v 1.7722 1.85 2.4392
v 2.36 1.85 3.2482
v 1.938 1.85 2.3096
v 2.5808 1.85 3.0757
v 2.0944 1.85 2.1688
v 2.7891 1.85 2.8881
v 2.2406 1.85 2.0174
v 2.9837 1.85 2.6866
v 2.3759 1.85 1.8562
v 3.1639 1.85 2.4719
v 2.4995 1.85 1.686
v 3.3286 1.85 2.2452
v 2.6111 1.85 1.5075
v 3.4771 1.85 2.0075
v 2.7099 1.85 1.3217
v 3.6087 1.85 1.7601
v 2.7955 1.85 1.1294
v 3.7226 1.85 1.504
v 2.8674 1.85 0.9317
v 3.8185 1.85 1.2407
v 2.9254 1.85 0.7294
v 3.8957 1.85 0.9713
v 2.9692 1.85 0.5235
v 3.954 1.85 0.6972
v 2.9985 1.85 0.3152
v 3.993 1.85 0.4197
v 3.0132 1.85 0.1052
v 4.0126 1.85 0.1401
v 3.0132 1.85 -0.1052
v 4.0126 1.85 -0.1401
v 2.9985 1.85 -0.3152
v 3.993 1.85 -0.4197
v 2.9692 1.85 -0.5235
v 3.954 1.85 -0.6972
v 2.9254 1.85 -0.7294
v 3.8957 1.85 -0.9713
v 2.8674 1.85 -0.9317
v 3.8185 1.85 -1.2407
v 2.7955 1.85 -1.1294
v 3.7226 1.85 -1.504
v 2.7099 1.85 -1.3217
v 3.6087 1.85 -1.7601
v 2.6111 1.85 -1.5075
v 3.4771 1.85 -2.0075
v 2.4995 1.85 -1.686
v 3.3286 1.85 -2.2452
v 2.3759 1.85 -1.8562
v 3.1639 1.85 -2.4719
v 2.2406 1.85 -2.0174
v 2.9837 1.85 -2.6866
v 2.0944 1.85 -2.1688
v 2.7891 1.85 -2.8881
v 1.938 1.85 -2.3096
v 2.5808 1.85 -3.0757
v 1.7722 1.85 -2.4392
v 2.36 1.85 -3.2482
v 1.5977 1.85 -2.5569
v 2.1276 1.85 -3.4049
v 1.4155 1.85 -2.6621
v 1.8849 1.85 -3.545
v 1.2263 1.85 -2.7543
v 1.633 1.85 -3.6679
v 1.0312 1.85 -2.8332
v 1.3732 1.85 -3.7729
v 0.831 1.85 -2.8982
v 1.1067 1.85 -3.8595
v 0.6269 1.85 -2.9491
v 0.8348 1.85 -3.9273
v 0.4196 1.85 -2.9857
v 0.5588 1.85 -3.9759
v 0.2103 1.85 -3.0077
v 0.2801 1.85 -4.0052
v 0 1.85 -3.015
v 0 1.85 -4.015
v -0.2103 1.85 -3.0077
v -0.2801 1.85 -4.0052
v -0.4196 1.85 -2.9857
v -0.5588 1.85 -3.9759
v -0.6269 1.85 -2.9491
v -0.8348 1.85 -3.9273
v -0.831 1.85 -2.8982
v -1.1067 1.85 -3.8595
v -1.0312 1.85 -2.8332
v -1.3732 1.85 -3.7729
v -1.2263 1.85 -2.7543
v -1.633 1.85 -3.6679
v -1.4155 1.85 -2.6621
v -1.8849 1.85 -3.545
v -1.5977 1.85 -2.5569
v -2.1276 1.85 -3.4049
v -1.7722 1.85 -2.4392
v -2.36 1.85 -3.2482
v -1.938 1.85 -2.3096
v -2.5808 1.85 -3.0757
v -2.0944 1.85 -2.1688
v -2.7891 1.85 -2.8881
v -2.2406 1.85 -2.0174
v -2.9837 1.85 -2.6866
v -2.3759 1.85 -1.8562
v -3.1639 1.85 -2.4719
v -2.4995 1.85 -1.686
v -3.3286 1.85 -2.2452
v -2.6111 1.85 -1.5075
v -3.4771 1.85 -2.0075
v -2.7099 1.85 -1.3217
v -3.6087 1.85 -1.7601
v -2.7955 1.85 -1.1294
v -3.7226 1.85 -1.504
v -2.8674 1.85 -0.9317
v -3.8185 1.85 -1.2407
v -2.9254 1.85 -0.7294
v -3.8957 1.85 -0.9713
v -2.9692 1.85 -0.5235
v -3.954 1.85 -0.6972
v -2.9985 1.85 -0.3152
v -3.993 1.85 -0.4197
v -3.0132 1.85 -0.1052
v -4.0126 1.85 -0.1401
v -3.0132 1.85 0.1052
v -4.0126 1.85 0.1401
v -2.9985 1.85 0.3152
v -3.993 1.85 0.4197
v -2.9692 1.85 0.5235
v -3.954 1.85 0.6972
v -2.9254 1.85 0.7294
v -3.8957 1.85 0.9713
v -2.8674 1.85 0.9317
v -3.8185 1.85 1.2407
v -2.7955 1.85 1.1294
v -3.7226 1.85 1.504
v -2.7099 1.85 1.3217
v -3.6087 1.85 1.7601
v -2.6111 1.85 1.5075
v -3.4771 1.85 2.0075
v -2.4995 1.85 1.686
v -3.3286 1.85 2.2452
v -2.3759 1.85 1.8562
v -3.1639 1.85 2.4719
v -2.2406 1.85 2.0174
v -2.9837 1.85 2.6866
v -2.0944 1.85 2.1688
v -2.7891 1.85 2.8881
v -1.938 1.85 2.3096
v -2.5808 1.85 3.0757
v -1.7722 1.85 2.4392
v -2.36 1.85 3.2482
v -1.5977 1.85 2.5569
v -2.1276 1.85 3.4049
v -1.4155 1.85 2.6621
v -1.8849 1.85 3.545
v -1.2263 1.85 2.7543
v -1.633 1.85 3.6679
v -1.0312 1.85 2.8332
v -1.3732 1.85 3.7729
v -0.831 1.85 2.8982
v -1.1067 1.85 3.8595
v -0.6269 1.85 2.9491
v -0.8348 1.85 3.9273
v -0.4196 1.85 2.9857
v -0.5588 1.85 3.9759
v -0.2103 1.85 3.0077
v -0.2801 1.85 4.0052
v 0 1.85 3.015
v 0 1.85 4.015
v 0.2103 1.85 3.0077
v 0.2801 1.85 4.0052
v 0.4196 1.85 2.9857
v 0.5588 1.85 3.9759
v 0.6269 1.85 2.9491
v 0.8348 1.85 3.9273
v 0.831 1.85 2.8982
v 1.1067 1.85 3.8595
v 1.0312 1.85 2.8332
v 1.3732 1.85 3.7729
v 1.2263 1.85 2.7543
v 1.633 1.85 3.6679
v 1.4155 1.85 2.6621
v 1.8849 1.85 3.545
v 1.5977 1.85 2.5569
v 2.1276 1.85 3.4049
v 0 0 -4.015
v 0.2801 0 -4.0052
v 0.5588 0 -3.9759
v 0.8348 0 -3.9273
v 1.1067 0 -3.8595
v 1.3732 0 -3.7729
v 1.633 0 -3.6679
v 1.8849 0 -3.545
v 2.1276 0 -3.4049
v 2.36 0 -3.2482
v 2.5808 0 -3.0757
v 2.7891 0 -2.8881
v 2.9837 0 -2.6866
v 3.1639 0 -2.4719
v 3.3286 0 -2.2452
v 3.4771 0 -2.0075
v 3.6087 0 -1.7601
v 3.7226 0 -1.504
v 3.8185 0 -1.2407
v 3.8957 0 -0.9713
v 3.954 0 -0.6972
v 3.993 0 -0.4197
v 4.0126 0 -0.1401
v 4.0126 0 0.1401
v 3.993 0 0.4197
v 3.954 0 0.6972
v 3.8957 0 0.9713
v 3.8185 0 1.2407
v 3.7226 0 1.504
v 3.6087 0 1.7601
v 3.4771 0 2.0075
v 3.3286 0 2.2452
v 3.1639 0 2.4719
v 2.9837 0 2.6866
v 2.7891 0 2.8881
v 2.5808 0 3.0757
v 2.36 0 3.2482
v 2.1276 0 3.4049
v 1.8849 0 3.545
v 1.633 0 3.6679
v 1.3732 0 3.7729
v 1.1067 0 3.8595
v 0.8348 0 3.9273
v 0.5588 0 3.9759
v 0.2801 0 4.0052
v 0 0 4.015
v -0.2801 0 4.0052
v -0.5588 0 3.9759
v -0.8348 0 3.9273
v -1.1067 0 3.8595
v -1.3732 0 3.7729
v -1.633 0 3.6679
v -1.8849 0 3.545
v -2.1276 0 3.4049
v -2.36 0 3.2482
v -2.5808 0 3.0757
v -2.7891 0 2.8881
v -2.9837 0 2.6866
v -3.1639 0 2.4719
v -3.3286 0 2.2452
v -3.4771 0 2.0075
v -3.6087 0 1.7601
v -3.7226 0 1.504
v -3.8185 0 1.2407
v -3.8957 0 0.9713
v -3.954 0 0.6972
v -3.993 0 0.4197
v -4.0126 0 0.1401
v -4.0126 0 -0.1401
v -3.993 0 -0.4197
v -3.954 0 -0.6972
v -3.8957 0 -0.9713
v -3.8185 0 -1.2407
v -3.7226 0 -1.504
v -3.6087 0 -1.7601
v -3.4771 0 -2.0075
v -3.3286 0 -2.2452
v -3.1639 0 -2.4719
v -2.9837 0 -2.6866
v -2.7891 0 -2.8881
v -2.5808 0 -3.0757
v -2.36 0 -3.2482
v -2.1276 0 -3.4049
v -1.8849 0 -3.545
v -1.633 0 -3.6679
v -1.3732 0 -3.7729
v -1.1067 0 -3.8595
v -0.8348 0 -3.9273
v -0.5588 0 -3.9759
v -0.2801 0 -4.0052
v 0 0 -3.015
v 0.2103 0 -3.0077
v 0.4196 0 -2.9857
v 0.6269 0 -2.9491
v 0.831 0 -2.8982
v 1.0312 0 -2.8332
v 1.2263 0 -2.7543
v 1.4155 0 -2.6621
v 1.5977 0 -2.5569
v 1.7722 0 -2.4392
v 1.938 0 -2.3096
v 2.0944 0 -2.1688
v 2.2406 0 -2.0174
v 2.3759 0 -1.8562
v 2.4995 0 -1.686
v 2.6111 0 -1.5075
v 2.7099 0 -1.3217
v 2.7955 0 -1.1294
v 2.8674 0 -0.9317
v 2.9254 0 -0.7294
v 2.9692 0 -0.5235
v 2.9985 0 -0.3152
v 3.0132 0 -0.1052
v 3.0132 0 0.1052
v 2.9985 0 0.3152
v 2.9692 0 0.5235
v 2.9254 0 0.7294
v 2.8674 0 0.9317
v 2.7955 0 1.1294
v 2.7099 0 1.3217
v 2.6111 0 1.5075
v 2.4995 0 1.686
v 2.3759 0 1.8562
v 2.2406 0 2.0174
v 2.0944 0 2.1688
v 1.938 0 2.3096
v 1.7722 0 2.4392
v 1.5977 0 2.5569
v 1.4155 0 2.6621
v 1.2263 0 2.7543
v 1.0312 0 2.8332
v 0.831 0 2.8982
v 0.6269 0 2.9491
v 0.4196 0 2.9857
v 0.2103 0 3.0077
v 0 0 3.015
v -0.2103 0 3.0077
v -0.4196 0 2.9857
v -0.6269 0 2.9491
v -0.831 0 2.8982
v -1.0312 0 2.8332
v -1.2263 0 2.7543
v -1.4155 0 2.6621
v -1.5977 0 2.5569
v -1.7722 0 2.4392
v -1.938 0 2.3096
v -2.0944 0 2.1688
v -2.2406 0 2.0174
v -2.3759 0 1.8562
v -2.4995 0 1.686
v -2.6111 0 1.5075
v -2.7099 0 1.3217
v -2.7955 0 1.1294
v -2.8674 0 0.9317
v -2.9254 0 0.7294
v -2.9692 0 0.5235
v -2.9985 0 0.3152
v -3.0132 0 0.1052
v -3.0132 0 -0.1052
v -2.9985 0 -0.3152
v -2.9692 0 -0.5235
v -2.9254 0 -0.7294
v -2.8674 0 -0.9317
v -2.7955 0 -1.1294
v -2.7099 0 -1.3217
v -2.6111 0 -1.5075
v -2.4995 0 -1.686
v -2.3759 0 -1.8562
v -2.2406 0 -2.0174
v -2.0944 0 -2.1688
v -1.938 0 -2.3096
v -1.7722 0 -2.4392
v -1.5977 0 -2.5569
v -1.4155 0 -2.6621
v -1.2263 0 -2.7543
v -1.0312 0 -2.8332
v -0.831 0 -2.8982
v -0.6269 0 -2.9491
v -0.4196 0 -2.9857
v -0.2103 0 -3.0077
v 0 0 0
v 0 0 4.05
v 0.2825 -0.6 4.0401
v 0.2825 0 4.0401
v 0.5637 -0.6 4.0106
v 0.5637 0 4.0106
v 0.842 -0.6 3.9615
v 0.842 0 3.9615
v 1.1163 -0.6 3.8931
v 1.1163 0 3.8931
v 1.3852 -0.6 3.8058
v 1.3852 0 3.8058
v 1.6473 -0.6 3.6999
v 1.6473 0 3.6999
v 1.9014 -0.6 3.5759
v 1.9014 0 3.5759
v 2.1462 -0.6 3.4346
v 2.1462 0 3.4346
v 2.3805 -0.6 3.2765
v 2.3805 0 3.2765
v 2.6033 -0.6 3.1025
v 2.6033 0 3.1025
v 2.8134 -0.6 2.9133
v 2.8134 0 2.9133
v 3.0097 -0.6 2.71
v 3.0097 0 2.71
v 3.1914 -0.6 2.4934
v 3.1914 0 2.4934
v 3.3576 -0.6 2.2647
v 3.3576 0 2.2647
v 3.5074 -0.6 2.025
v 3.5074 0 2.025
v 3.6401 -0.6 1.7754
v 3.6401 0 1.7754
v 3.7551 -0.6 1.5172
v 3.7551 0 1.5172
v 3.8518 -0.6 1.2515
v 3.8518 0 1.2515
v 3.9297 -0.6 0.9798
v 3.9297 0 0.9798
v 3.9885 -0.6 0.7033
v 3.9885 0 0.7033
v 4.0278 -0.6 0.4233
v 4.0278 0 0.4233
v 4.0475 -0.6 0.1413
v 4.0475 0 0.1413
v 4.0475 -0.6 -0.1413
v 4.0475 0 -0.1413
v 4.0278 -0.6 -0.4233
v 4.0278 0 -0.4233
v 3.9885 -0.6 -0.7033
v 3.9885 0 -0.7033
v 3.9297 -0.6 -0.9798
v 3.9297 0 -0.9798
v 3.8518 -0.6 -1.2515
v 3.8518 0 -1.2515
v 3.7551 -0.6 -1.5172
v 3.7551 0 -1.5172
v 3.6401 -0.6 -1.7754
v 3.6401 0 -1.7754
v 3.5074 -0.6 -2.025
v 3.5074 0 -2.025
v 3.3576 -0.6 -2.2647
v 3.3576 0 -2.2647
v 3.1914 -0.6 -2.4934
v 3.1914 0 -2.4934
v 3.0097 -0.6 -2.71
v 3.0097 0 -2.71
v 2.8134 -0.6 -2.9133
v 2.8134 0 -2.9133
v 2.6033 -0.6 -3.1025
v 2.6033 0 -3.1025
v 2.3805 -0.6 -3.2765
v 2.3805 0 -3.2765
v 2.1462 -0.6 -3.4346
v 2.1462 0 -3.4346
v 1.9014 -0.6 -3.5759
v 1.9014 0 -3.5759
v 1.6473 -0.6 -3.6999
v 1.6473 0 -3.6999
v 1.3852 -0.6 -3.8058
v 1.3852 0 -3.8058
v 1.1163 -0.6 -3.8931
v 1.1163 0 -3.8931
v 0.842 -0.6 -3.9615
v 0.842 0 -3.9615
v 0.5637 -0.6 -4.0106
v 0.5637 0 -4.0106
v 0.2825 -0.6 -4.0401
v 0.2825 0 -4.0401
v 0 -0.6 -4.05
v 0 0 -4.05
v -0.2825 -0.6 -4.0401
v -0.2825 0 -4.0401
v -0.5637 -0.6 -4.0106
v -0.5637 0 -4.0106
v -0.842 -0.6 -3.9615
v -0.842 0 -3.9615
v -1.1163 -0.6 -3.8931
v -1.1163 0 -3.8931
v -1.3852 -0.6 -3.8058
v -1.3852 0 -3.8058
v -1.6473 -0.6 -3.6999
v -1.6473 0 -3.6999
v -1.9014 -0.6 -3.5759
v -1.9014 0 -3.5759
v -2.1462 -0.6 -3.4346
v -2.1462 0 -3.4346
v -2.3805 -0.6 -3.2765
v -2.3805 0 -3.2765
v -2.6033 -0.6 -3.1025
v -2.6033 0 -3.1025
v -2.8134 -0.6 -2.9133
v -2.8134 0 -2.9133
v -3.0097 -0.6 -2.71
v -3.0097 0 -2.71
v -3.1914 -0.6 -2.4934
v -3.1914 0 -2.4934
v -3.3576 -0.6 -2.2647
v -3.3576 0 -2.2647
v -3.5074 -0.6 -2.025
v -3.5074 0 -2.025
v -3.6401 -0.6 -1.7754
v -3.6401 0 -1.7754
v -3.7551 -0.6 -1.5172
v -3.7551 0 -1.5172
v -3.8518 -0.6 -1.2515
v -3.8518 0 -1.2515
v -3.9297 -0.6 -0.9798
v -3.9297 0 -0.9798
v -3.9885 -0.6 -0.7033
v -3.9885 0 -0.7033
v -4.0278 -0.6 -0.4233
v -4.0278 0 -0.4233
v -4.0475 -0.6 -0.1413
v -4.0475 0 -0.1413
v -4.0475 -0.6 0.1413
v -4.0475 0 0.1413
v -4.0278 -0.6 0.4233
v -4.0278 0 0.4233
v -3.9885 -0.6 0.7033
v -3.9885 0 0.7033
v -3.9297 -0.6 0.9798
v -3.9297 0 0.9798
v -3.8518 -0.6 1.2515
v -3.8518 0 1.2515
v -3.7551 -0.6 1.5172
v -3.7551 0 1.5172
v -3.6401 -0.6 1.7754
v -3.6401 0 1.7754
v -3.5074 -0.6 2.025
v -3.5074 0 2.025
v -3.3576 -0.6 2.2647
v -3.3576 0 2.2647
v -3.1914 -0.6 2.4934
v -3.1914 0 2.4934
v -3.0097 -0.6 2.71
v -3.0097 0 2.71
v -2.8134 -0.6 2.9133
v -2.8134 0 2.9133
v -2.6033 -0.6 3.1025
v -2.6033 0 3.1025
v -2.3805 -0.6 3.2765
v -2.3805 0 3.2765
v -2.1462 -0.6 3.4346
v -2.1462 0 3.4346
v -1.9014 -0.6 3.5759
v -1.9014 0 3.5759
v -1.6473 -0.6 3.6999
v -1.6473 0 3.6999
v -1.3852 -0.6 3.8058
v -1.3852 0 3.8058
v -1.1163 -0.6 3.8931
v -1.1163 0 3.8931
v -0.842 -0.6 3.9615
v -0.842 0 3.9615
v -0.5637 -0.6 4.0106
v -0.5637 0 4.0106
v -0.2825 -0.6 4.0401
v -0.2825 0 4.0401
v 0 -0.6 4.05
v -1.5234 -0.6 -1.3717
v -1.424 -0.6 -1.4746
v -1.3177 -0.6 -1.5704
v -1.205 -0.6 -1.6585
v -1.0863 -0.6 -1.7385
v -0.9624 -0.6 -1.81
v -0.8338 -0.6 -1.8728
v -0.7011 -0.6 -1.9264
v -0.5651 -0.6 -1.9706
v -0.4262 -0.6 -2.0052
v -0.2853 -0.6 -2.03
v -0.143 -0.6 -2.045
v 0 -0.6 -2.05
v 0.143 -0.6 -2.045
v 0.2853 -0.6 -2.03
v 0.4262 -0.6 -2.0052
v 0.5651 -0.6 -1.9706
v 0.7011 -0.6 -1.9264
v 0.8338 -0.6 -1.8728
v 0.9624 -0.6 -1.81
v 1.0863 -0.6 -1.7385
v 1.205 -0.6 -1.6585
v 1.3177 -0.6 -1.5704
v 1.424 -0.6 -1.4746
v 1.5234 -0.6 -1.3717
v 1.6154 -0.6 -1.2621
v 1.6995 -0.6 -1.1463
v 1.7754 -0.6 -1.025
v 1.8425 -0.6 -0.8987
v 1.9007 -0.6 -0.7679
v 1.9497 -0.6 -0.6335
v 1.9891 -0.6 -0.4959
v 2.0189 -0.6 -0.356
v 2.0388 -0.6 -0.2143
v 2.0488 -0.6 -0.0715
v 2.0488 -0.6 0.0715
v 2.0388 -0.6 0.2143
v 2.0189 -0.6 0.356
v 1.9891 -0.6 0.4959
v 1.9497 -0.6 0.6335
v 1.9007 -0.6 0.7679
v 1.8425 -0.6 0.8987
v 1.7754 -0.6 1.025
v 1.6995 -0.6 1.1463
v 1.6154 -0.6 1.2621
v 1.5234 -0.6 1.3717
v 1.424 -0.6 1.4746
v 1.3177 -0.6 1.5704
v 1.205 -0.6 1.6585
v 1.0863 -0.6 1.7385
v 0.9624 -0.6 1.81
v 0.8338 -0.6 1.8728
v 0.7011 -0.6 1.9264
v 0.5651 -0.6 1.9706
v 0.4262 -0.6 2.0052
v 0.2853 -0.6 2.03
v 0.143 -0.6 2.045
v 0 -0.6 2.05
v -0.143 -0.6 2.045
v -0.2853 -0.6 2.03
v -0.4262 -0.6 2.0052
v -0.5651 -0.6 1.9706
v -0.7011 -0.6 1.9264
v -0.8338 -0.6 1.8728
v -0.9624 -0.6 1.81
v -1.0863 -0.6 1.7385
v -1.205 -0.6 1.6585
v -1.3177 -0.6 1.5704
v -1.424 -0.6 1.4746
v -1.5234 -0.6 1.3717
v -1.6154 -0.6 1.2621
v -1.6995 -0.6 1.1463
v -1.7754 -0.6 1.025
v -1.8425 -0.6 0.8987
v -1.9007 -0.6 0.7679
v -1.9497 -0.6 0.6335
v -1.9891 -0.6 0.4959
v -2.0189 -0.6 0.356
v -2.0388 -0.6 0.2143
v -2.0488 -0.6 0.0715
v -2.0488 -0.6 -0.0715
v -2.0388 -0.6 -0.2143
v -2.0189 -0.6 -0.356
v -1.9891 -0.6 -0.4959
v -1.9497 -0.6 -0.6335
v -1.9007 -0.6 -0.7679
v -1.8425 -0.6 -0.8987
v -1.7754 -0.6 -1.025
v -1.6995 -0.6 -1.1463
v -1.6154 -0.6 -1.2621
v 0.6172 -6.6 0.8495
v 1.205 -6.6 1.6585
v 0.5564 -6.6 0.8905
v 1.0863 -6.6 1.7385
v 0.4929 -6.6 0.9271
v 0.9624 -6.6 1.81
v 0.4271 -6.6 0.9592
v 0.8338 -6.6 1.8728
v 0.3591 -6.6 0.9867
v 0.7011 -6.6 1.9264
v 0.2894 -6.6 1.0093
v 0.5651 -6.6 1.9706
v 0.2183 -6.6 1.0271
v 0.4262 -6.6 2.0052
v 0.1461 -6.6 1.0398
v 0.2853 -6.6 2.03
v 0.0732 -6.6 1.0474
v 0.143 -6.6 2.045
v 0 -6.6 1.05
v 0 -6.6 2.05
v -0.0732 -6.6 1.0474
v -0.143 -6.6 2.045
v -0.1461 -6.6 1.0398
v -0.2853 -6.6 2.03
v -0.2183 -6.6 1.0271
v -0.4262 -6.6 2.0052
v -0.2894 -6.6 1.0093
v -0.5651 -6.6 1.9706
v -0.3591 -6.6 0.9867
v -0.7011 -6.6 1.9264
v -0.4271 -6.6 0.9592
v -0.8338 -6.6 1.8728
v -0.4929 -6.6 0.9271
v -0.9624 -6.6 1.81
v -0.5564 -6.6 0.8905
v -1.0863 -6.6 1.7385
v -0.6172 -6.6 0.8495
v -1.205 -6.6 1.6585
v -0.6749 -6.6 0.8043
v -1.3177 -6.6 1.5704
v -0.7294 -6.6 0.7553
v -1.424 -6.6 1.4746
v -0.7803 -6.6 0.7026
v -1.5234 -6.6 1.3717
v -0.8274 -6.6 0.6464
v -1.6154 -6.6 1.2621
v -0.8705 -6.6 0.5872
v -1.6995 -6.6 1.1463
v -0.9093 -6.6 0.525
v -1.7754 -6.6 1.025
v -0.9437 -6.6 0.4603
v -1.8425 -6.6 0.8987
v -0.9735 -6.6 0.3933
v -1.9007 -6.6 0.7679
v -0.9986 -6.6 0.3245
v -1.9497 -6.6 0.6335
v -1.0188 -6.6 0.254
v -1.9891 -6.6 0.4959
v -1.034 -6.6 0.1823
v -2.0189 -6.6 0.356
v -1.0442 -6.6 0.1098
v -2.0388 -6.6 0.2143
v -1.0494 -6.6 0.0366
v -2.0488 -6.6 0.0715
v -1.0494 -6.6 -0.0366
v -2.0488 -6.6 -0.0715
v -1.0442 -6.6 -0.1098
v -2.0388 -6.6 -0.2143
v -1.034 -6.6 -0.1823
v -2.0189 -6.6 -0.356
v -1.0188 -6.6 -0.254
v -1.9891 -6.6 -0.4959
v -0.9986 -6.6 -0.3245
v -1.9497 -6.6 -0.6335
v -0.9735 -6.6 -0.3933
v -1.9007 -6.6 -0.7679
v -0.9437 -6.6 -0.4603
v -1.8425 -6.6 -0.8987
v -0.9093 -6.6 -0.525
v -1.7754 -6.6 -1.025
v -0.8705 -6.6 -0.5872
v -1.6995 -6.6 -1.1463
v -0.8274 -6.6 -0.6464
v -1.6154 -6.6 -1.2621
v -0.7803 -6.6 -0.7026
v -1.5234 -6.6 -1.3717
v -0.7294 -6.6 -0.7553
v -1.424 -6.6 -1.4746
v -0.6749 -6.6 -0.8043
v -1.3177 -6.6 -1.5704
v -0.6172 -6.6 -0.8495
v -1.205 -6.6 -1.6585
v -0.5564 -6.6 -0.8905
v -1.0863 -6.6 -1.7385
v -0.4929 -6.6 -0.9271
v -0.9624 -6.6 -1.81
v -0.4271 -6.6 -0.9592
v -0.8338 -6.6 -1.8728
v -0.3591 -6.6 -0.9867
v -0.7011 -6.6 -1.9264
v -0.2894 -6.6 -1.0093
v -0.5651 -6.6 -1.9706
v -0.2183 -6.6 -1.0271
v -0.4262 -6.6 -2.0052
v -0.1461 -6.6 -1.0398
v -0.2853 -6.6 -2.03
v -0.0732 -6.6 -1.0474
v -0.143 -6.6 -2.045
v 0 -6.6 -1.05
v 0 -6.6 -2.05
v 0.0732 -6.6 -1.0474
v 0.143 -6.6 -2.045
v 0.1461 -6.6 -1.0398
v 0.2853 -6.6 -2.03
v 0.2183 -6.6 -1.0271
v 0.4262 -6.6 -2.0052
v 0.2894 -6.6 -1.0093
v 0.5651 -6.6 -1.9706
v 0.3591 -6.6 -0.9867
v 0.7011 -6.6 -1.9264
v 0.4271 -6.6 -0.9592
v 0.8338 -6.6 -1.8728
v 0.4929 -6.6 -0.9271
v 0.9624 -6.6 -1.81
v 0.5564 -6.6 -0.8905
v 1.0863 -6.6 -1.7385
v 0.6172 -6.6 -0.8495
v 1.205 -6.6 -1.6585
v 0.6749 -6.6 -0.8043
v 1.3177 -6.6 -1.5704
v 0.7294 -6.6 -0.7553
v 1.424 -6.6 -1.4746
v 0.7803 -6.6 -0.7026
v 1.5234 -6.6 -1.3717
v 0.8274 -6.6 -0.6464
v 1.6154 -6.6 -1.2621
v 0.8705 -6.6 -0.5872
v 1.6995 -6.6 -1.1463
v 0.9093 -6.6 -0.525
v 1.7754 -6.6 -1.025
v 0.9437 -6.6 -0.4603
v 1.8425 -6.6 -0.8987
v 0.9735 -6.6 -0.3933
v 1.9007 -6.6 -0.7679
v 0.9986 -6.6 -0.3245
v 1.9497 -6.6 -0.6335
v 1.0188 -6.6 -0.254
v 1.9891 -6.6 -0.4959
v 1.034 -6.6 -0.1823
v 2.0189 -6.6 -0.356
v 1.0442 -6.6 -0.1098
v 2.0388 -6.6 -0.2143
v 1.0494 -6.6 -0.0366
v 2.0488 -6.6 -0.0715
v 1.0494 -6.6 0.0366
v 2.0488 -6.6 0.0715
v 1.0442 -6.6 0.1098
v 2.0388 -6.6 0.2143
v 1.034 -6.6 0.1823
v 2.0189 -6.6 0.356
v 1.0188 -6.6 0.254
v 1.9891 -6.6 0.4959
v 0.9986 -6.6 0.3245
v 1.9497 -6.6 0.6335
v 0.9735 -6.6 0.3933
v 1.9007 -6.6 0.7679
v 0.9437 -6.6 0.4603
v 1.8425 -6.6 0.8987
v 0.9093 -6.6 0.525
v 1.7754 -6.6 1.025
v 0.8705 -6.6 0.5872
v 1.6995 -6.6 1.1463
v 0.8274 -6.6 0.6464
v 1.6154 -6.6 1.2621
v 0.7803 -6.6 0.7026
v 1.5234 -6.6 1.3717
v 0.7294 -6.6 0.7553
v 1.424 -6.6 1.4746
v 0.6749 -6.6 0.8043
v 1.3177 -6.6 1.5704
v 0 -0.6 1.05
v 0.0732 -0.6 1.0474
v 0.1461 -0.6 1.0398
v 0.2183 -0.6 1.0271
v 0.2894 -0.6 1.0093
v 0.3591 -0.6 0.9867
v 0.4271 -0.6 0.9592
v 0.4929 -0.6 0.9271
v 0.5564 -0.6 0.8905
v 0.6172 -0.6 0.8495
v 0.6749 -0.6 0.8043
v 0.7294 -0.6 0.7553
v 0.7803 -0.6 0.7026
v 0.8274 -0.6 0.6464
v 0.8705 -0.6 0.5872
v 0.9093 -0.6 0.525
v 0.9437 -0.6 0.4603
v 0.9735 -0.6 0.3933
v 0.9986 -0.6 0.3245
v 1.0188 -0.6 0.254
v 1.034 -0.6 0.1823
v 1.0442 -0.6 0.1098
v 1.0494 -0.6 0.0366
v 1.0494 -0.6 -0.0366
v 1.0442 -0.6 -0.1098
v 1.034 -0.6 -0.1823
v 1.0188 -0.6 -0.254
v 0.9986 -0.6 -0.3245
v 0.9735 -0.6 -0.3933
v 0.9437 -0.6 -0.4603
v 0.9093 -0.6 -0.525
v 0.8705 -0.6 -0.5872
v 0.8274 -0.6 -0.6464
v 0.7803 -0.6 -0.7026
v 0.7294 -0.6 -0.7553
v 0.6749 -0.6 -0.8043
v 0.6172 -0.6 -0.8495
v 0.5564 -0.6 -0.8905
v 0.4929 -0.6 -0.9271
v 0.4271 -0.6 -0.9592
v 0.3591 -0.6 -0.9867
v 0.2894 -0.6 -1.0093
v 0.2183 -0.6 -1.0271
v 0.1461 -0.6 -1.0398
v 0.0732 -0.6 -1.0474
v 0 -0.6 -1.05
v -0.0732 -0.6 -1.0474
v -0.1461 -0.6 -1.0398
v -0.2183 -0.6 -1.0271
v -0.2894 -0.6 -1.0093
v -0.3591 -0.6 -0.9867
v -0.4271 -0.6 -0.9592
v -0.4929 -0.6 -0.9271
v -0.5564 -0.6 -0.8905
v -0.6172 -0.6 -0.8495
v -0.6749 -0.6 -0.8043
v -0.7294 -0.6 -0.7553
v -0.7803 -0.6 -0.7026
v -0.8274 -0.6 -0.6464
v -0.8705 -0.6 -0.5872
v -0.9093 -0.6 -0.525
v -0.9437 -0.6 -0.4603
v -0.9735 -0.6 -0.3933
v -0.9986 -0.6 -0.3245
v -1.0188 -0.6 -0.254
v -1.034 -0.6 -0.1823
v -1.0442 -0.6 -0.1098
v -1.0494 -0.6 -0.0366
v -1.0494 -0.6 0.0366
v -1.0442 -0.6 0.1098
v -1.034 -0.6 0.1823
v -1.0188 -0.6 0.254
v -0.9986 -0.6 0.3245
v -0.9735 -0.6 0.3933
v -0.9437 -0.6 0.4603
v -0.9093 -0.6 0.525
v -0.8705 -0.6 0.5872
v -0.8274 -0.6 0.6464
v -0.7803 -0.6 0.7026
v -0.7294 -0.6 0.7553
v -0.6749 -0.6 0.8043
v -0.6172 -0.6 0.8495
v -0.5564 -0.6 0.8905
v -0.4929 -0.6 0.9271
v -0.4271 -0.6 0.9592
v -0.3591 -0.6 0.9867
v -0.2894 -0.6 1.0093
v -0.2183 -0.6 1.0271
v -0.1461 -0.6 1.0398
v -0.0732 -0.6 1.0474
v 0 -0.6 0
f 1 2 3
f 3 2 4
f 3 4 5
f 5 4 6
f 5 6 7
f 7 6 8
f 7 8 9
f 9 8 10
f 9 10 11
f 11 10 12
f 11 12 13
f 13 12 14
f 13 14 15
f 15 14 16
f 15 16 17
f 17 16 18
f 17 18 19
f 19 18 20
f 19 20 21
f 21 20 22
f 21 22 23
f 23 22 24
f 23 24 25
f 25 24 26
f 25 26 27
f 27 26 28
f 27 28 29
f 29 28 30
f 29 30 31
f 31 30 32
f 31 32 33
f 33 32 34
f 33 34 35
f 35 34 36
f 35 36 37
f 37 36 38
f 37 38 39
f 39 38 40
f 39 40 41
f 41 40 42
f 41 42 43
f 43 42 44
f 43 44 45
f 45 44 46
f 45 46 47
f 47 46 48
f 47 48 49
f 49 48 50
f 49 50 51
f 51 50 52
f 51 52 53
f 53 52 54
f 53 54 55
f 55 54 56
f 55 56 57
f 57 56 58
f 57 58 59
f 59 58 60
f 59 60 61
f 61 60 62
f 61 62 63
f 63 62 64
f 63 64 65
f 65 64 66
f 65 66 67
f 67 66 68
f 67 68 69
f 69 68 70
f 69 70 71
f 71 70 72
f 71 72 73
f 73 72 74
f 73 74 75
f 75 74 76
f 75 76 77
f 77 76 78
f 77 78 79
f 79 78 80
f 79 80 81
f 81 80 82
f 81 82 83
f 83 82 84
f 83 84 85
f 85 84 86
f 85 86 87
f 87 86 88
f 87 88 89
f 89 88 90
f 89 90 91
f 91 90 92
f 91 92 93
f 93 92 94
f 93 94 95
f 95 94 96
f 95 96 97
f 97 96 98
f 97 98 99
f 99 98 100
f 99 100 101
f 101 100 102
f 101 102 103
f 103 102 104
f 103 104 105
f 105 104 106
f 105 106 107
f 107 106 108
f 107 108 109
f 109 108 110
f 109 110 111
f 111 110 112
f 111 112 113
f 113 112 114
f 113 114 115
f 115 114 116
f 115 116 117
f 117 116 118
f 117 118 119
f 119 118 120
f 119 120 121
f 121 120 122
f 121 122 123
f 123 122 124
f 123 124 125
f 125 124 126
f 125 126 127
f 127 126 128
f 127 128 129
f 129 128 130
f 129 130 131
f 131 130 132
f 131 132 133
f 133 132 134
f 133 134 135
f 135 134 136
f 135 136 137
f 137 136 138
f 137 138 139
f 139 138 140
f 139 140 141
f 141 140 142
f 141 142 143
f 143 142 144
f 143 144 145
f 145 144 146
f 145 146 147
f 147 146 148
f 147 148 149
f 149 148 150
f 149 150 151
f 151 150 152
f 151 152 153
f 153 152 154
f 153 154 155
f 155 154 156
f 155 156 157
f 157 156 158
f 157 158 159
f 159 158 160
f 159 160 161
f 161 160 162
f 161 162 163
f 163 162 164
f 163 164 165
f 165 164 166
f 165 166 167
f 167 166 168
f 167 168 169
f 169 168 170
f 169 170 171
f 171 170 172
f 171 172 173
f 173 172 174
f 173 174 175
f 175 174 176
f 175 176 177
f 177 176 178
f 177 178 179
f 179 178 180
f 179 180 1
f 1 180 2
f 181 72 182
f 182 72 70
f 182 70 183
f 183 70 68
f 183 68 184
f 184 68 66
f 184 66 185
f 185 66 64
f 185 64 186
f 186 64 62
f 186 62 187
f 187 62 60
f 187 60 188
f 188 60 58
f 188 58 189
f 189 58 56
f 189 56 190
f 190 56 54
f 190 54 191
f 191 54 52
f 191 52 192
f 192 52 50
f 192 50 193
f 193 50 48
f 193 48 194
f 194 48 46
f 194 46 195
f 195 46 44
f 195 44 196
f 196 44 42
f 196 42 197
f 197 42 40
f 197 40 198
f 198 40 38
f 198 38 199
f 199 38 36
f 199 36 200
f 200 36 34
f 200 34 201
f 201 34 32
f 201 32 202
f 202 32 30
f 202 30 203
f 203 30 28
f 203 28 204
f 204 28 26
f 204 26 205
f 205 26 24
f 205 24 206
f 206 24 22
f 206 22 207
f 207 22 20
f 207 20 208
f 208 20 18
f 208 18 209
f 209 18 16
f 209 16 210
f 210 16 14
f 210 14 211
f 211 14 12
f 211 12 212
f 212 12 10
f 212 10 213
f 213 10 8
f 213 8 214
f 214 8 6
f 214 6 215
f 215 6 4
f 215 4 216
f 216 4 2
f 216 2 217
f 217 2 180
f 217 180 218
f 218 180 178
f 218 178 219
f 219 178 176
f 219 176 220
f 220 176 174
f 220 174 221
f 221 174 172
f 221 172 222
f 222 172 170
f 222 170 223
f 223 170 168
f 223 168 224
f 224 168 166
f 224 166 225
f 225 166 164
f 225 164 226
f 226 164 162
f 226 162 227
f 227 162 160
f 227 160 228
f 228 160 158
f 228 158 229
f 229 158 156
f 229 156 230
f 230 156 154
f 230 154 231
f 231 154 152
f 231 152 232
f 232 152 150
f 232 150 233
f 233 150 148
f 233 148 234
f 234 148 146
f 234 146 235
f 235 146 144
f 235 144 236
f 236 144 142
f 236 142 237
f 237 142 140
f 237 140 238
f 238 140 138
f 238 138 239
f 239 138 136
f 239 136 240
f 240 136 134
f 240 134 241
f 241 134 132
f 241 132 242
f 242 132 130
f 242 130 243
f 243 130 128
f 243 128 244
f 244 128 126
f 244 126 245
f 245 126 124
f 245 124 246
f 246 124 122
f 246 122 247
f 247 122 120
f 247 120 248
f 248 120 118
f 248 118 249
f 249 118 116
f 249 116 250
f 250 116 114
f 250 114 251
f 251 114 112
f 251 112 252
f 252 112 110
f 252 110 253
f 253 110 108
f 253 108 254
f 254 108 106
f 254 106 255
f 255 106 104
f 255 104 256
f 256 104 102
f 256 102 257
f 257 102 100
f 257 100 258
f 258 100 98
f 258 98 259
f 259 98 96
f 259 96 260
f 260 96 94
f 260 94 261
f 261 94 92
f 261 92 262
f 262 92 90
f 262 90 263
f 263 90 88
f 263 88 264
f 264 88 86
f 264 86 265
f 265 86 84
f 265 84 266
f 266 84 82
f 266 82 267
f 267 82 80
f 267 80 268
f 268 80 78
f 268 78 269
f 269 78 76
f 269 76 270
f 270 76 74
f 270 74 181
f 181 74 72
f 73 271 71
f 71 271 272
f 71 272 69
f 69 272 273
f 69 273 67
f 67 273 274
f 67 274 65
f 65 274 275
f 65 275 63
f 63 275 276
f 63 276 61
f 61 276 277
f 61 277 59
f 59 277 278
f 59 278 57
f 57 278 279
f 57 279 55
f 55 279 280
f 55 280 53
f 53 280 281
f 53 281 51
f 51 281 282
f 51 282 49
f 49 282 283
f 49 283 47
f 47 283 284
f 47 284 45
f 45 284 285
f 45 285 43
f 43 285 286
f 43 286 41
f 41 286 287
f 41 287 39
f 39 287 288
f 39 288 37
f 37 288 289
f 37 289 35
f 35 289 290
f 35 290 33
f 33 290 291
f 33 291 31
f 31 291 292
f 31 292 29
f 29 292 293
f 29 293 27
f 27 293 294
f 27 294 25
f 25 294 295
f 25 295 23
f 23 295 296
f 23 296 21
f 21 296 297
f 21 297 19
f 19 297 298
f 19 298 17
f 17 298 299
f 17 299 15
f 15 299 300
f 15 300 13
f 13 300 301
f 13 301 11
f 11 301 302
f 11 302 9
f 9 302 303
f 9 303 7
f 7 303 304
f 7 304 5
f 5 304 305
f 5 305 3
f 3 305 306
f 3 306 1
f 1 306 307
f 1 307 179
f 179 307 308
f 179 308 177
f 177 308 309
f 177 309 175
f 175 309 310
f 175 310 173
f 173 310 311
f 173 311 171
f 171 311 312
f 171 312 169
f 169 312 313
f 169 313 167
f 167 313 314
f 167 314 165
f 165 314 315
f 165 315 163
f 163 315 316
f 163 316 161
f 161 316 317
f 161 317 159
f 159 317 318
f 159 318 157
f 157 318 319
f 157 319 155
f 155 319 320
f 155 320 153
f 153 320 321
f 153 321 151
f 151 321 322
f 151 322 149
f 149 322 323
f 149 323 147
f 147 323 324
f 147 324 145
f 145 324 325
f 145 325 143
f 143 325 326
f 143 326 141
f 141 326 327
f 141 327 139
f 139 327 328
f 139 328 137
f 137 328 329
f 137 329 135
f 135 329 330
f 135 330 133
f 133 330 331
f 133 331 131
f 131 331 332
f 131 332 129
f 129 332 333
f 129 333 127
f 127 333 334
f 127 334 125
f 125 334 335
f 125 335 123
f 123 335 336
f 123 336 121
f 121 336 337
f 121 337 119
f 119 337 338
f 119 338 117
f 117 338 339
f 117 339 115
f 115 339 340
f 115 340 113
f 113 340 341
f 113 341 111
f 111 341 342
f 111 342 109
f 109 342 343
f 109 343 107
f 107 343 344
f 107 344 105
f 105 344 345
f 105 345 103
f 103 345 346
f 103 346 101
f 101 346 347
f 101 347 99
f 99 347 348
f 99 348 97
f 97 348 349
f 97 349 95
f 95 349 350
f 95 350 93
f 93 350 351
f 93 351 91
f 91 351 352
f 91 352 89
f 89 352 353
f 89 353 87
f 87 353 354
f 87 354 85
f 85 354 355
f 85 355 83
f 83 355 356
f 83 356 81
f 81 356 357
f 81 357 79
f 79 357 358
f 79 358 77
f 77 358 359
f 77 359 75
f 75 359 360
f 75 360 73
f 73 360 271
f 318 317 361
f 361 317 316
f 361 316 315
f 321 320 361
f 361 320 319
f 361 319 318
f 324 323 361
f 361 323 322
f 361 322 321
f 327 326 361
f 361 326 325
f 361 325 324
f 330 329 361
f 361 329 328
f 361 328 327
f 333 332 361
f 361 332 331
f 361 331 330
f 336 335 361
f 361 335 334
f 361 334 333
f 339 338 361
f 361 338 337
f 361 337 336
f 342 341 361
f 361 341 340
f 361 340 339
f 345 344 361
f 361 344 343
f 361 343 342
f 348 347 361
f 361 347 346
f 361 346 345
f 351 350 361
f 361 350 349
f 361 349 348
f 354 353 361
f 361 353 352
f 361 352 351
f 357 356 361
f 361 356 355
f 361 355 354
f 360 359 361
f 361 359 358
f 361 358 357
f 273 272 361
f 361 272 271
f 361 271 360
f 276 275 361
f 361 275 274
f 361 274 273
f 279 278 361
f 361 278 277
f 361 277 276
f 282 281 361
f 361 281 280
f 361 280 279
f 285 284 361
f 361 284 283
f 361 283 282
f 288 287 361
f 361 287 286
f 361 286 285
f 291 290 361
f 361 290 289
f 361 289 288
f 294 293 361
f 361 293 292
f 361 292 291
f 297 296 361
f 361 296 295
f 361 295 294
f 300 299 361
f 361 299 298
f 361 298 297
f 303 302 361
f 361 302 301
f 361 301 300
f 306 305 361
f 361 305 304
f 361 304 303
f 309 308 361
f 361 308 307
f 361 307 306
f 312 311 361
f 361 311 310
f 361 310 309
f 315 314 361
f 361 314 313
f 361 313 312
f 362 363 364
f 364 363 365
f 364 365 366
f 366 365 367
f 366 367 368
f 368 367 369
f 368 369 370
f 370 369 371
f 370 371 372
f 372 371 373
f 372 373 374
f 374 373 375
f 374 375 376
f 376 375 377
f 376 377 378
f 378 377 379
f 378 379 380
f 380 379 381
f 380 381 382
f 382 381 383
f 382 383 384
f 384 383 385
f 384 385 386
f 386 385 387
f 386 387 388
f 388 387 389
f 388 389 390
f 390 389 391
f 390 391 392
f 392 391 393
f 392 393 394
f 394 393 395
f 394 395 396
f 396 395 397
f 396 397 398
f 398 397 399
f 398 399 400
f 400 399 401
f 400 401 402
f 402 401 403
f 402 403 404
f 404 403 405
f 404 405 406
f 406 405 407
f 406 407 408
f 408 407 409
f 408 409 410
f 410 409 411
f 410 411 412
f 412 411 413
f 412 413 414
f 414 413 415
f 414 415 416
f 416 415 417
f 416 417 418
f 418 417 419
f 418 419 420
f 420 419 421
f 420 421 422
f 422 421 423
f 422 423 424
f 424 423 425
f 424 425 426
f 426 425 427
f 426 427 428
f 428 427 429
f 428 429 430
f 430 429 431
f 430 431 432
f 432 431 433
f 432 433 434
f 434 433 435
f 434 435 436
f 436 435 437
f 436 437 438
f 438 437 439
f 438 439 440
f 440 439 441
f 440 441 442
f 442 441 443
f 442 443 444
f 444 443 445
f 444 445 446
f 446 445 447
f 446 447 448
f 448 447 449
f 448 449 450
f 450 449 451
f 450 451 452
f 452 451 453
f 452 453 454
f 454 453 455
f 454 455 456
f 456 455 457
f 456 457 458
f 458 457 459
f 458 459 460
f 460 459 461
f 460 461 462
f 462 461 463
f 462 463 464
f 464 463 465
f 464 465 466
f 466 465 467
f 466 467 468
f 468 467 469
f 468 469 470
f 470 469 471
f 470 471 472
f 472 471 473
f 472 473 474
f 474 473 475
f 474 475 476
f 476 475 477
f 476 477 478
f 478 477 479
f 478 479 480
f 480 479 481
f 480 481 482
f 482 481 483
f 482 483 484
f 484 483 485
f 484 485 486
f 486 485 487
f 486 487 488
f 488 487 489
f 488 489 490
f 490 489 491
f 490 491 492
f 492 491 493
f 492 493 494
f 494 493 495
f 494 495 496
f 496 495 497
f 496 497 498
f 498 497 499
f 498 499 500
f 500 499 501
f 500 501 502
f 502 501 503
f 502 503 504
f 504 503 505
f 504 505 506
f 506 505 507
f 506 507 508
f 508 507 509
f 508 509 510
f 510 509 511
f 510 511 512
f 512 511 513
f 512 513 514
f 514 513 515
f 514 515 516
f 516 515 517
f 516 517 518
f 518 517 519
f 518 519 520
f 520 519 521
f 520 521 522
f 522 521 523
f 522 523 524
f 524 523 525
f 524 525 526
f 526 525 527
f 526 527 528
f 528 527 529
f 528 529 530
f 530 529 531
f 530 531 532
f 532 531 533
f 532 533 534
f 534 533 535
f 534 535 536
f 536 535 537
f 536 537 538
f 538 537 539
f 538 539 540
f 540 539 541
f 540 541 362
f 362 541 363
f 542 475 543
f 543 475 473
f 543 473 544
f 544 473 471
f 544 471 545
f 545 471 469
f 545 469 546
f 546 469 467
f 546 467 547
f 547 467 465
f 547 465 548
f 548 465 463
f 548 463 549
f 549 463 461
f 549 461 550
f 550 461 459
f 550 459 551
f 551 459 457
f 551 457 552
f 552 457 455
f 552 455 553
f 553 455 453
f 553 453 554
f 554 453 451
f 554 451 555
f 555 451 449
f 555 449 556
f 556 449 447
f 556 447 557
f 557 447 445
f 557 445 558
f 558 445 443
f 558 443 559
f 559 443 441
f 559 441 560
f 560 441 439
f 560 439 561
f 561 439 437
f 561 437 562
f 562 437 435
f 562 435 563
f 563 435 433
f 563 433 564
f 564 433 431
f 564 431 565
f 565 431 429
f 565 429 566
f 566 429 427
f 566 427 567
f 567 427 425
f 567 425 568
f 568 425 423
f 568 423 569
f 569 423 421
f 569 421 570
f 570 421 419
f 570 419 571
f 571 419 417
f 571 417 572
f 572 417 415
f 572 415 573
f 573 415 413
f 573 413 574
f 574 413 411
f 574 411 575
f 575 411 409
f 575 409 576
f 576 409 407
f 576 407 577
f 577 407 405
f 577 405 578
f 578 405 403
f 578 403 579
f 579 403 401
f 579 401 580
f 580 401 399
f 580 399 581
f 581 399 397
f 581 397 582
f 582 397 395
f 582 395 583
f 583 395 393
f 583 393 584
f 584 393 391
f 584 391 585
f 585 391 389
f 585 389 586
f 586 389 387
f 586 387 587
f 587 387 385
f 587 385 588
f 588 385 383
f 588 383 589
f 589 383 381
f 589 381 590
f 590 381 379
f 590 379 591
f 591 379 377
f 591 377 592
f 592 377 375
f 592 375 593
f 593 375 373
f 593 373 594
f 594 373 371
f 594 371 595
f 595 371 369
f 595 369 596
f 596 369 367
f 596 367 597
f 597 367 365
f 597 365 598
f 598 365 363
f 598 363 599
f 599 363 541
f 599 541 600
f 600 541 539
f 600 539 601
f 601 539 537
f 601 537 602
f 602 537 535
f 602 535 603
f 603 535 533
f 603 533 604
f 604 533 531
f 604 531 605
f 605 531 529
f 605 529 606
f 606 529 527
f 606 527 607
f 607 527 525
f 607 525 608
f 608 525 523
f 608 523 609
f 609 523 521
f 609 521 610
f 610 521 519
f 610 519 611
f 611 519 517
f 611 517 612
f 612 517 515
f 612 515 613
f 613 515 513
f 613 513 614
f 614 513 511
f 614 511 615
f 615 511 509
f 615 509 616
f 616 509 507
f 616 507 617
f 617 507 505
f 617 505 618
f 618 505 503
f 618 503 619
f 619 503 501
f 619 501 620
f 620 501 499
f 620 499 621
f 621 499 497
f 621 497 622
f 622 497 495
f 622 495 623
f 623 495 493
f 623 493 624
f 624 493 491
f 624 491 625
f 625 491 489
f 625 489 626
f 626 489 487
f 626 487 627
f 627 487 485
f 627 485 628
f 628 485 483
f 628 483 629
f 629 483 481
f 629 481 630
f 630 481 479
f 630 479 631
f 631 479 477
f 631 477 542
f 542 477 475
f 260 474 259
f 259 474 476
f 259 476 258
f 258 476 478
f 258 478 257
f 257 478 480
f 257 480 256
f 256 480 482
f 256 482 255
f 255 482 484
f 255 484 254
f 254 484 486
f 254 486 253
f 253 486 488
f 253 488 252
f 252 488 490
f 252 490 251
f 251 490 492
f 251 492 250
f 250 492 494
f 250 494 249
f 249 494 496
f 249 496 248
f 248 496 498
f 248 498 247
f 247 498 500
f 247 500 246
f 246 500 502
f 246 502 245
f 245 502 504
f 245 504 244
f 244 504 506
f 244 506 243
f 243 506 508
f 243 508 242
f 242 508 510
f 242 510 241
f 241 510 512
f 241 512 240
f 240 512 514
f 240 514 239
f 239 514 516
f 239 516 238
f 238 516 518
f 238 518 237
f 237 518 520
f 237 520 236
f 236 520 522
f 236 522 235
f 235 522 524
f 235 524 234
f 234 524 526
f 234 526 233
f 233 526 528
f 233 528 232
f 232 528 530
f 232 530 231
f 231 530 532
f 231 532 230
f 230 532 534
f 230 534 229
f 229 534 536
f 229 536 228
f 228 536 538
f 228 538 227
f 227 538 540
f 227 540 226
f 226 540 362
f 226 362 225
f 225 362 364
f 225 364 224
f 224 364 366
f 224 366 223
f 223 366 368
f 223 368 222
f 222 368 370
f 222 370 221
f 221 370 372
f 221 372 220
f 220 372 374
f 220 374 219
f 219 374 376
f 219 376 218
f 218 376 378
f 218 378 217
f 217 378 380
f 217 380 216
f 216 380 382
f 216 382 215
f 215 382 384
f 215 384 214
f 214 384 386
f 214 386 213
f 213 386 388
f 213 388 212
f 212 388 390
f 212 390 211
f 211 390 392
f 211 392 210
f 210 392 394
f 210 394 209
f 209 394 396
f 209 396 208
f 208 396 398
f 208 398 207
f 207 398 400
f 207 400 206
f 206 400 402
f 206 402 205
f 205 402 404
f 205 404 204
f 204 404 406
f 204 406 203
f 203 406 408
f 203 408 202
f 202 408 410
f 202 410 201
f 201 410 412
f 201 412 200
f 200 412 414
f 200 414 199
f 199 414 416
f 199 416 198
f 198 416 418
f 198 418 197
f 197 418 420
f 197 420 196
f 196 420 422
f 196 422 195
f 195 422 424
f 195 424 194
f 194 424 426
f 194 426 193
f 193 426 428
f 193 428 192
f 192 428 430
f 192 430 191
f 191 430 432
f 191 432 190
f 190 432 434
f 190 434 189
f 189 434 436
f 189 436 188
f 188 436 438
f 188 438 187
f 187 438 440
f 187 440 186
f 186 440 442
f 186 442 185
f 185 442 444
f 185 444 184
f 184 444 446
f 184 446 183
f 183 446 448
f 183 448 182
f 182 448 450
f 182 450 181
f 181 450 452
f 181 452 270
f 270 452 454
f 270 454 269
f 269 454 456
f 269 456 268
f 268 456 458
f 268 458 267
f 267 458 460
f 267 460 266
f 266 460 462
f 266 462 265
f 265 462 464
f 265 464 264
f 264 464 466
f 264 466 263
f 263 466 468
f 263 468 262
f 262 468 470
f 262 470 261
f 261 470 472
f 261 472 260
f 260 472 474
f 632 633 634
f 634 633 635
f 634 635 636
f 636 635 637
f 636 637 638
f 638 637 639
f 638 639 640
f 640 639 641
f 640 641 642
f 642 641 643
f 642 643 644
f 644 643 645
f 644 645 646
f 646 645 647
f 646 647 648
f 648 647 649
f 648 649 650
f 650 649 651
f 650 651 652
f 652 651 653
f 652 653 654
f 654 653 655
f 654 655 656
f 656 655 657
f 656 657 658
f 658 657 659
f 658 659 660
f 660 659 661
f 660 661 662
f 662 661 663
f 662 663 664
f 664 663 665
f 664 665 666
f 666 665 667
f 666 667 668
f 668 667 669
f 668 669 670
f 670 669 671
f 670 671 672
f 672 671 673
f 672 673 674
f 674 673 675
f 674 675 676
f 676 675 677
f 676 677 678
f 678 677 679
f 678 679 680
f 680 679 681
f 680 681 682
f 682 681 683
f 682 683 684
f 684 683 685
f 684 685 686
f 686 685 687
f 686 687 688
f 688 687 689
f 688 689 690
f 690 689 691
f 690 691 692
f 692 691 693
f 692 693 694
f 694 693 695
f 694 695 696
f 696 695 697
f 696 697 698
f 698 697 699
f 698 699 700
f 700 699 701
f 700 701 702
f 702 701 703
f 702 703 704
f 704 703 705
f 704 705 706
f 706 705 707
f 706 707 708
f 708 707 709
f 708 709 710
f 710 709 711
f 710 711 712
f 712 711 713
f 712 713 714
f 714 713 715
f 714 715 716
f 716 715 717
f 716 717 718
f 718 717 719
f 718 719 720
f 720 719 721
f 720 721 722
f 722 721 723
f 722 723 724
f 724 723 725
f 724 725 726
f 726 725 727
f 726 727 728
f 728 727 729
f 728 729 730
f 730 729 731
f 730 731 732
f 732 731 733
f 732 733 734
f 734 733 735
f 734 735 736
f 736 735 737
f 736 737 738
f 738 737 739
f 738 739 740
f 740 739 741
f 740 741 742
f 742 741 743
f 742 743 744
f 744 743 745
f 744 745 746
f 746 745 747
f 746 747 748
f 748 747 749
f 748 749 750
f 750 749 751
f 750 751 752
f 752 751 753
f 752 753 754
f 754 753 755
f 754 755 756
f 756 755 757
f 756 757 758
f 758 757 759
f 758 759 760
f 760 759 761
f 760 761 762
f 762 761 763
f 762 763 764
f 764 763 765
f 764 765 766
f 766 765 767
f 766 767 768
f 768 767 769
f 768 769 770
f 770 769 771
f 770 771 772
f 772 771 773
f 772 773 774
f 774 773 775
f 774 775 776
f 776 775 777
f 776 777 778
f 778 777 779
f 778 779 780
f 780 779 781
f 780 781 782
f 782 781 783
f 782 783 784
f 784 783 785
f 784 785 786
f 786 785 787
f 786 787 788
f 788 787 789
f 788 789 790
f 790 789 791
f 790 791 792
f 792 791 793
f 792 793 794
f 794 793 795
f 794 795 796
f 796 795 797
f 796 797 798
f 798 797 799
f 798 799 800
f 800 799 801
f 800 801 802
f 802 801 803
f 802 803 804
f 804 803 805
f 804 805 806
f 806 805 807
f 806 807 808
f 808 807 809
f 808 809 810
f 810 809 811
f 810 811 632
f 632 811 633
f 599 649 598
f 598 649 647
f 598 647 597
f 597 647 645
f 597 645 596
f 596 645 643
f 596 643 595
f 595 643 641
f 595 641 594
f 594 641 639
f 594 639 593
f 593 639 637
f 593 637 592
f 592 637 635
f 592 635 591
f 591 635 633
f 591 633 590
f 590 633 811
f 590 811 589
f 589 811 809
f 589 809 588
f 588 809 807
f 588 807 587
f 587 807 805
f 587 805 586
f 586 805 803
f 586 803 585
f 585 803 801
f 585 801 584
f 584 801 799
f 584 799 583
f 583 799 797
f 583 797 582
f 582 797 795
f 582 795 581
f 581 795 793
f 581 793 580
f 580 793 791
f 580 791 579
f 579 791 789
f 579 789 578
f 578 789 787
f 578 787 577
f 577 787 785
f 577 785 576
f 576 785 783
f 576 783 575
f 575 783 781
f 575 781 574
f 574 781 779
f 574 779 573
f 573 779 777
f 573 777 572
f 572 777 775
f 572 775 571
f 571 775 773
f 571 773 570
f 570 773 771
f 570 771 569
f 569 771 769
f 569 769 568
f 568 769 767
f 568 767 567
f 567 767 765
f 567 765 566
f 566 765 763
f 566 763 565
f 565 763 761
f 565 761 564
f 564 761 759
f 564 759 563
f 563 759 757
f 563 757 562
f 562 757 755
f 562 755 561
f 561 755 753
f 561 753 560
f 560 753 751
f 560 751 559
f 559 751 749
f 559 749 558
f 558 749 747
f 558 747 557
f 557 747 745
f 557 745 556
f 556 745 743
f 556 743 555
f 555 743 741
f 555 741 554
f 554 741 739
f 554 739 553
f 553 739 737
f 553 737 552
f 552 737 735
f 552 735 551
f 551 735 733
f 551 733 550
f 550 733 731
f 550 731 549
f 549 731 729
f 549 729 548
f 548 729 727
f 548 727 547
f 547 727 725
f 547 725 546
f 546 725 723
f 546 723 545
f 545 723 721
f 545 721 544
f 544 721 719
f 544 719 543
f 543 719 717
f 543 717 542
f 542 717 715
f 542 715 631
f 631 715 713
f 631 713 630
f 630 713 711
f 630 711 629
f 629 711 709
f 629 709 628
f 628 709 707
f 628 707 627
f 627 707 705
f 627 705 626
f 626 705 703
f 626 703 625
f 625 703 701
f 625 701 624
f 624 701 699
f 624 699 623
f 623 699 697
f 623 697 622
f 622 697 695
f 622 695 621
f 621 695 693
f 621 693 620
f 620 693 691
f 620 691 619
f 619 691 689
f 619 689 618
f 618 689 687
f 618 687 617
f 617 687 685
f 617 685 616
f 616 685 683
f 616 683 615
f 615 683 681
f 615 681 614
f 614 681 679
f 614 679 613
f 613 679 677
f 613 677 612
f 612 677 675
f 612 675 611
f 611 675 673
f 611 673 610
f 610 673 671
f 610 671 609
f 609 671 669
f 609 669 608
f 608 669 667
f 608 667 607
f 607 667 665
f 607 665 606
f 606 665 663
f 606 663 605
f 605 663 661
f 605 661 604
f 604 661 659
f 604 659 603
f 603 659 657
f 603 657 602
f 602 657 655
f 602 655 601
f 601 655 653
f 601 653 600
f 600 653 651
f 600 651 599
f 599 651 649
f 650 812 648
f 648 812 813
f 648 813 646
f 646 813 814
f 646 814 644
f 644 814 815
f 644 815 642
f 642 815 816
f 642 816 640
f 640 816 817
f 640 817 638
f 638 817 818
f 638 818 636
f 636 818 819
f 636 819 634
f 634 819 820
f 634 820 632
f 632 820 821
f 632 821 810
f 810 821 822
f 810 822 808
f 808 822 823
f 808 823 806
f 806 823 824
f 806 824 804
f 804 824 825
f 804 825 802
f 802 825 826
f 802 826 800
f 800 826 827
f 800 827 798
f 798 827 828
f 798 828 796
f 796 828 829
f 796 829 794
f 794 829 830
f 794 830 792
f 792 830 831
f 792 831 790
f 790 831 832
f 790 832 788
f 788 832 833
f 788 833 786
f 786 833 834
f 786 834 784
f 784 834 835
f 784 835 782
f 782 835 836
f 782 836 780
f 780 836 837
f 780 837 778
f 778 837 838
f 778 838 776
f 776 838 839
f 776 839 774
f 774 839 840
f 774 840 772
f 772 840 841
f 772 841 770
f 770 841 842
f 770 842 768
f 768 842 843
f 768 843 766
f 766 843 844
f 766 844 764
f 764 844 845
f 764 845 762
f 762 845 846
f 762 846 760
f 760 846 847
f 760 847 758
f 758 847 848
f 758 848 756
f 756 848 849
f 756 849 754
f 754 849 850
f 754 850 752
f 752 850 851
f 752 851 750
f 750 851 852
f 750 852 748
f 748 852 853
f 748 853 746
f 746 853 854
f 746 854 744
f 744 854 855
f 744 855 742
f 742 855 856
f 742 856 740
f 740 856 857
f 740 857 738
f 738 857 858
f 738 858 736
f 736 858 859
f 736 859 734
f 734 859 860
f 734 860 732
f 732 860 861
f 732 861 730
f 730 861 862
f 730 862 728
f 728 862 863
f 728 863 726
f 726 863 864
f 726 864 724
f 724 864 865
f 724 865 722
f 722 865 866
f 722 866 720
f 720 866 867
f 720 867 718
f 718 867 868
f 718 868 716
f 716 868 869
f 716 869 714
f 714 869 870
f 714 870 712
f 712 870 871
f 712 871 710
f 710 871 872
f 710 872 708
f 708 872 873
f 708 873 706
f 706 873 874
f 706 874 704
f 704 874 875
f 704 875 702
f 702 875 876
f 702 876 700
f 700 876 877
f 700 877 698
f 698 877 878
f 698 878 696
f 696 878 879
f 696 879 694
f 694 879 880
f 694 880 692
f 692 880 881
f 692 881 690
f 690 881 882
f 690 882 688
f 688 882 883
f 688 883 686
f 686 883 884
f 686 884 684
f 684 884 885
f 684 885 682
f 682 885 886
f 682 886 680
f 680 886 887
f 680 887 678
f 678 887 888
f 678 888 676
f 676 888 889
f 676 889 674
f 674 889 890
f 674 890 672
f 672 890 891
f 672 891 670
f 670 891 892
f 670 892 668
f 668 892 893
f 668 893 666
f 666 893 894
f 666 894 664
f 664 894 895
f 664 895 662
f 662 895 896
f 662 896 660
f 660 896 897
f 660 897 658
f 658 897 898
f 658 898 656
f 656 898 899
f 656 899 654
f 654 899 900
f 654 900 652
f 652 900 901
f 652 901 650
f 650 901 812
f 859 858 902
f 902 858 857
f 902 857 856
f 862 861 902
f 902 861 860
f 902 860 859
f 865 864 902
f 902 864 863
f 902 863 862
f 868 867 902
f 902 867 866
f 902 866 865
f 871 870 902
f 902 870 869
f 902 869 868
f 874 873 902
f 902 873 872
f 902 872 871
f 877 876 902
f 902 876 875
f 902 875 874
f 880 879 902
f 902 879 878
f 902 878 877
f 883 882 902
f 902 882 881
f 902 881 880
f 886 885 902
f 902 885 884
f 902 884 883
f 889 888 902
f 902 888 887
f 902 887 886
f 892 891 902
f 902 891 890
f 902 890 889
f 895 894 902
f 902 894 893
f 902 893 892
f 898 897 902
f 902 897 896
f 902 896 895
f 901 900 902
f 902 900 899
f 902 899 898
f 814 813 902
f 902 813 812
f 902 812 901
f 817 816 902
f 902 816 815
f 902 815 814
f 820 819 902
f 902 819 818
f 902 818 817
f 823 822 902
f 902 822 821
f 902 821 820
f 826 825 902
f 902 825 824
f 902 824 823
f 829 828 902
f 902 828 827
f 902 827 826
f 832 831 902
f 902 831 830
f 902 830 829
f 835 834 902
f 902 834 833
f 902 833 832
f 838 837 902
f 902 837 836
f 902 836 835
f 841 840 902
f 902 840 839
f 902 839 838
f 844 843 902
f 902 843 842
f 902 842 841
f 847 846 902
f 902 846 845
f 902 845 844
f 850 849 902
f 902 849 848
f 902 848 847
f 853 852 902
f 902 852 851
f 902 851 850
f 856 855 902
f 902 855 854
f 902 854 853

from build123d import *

# Parameters (mm, degrees)
SKETCH1_R           = 4.015
SKETCH1_R_2         = 3.015
BOSS_EXTRUDE1_DEPTH = 1.85
SKETCH2_R           = 4.05
BOSS_EXTRUDE2_DEPTH = 0.6
SKETCH3_R           = 2.05
SKETCH3_R_2         = 1.05
BOSS_EXTRUDE3_DEPTH = 6


with BuildPart() as part:
    # Sketch1 → Boss-Extrude1 (new body)
    with BuildSketch(Plane(origin=(0, 0, 0), x_dir=(1, 0, 0), z_dir=(0, 1, 0))):
        Circle(SKETCH1_R)
        Circle(SKETCH1_R_2, mode=Mode.SUBTRACT)
    extrude(amount=BOSS_EXTRUDE1_DEPTH)

    # Sketch2 → Boss-Extrude2 (add)
    with BuildSketch(Plane(origin=(0, 0, 0), x_dir=(1, 0, 0), z_dir=(0, 1, 0))):
        Circle(SKETCH2_R)
    extrude(amount=-BOSS_EXTRUDE2_DEPTH)

    # Sketch3 → Boss-Extrude3 (add)
    with BuildSketch(Plane.XZ.offset(0.6)):
        Circle(SKETCH3_R)
        Circle(SKETCH3_R_2, mode=Mode.SUBTRACT)
    extrude(amount=BOSS_EXTRUDE3_DEPTH)


solid = part.part
